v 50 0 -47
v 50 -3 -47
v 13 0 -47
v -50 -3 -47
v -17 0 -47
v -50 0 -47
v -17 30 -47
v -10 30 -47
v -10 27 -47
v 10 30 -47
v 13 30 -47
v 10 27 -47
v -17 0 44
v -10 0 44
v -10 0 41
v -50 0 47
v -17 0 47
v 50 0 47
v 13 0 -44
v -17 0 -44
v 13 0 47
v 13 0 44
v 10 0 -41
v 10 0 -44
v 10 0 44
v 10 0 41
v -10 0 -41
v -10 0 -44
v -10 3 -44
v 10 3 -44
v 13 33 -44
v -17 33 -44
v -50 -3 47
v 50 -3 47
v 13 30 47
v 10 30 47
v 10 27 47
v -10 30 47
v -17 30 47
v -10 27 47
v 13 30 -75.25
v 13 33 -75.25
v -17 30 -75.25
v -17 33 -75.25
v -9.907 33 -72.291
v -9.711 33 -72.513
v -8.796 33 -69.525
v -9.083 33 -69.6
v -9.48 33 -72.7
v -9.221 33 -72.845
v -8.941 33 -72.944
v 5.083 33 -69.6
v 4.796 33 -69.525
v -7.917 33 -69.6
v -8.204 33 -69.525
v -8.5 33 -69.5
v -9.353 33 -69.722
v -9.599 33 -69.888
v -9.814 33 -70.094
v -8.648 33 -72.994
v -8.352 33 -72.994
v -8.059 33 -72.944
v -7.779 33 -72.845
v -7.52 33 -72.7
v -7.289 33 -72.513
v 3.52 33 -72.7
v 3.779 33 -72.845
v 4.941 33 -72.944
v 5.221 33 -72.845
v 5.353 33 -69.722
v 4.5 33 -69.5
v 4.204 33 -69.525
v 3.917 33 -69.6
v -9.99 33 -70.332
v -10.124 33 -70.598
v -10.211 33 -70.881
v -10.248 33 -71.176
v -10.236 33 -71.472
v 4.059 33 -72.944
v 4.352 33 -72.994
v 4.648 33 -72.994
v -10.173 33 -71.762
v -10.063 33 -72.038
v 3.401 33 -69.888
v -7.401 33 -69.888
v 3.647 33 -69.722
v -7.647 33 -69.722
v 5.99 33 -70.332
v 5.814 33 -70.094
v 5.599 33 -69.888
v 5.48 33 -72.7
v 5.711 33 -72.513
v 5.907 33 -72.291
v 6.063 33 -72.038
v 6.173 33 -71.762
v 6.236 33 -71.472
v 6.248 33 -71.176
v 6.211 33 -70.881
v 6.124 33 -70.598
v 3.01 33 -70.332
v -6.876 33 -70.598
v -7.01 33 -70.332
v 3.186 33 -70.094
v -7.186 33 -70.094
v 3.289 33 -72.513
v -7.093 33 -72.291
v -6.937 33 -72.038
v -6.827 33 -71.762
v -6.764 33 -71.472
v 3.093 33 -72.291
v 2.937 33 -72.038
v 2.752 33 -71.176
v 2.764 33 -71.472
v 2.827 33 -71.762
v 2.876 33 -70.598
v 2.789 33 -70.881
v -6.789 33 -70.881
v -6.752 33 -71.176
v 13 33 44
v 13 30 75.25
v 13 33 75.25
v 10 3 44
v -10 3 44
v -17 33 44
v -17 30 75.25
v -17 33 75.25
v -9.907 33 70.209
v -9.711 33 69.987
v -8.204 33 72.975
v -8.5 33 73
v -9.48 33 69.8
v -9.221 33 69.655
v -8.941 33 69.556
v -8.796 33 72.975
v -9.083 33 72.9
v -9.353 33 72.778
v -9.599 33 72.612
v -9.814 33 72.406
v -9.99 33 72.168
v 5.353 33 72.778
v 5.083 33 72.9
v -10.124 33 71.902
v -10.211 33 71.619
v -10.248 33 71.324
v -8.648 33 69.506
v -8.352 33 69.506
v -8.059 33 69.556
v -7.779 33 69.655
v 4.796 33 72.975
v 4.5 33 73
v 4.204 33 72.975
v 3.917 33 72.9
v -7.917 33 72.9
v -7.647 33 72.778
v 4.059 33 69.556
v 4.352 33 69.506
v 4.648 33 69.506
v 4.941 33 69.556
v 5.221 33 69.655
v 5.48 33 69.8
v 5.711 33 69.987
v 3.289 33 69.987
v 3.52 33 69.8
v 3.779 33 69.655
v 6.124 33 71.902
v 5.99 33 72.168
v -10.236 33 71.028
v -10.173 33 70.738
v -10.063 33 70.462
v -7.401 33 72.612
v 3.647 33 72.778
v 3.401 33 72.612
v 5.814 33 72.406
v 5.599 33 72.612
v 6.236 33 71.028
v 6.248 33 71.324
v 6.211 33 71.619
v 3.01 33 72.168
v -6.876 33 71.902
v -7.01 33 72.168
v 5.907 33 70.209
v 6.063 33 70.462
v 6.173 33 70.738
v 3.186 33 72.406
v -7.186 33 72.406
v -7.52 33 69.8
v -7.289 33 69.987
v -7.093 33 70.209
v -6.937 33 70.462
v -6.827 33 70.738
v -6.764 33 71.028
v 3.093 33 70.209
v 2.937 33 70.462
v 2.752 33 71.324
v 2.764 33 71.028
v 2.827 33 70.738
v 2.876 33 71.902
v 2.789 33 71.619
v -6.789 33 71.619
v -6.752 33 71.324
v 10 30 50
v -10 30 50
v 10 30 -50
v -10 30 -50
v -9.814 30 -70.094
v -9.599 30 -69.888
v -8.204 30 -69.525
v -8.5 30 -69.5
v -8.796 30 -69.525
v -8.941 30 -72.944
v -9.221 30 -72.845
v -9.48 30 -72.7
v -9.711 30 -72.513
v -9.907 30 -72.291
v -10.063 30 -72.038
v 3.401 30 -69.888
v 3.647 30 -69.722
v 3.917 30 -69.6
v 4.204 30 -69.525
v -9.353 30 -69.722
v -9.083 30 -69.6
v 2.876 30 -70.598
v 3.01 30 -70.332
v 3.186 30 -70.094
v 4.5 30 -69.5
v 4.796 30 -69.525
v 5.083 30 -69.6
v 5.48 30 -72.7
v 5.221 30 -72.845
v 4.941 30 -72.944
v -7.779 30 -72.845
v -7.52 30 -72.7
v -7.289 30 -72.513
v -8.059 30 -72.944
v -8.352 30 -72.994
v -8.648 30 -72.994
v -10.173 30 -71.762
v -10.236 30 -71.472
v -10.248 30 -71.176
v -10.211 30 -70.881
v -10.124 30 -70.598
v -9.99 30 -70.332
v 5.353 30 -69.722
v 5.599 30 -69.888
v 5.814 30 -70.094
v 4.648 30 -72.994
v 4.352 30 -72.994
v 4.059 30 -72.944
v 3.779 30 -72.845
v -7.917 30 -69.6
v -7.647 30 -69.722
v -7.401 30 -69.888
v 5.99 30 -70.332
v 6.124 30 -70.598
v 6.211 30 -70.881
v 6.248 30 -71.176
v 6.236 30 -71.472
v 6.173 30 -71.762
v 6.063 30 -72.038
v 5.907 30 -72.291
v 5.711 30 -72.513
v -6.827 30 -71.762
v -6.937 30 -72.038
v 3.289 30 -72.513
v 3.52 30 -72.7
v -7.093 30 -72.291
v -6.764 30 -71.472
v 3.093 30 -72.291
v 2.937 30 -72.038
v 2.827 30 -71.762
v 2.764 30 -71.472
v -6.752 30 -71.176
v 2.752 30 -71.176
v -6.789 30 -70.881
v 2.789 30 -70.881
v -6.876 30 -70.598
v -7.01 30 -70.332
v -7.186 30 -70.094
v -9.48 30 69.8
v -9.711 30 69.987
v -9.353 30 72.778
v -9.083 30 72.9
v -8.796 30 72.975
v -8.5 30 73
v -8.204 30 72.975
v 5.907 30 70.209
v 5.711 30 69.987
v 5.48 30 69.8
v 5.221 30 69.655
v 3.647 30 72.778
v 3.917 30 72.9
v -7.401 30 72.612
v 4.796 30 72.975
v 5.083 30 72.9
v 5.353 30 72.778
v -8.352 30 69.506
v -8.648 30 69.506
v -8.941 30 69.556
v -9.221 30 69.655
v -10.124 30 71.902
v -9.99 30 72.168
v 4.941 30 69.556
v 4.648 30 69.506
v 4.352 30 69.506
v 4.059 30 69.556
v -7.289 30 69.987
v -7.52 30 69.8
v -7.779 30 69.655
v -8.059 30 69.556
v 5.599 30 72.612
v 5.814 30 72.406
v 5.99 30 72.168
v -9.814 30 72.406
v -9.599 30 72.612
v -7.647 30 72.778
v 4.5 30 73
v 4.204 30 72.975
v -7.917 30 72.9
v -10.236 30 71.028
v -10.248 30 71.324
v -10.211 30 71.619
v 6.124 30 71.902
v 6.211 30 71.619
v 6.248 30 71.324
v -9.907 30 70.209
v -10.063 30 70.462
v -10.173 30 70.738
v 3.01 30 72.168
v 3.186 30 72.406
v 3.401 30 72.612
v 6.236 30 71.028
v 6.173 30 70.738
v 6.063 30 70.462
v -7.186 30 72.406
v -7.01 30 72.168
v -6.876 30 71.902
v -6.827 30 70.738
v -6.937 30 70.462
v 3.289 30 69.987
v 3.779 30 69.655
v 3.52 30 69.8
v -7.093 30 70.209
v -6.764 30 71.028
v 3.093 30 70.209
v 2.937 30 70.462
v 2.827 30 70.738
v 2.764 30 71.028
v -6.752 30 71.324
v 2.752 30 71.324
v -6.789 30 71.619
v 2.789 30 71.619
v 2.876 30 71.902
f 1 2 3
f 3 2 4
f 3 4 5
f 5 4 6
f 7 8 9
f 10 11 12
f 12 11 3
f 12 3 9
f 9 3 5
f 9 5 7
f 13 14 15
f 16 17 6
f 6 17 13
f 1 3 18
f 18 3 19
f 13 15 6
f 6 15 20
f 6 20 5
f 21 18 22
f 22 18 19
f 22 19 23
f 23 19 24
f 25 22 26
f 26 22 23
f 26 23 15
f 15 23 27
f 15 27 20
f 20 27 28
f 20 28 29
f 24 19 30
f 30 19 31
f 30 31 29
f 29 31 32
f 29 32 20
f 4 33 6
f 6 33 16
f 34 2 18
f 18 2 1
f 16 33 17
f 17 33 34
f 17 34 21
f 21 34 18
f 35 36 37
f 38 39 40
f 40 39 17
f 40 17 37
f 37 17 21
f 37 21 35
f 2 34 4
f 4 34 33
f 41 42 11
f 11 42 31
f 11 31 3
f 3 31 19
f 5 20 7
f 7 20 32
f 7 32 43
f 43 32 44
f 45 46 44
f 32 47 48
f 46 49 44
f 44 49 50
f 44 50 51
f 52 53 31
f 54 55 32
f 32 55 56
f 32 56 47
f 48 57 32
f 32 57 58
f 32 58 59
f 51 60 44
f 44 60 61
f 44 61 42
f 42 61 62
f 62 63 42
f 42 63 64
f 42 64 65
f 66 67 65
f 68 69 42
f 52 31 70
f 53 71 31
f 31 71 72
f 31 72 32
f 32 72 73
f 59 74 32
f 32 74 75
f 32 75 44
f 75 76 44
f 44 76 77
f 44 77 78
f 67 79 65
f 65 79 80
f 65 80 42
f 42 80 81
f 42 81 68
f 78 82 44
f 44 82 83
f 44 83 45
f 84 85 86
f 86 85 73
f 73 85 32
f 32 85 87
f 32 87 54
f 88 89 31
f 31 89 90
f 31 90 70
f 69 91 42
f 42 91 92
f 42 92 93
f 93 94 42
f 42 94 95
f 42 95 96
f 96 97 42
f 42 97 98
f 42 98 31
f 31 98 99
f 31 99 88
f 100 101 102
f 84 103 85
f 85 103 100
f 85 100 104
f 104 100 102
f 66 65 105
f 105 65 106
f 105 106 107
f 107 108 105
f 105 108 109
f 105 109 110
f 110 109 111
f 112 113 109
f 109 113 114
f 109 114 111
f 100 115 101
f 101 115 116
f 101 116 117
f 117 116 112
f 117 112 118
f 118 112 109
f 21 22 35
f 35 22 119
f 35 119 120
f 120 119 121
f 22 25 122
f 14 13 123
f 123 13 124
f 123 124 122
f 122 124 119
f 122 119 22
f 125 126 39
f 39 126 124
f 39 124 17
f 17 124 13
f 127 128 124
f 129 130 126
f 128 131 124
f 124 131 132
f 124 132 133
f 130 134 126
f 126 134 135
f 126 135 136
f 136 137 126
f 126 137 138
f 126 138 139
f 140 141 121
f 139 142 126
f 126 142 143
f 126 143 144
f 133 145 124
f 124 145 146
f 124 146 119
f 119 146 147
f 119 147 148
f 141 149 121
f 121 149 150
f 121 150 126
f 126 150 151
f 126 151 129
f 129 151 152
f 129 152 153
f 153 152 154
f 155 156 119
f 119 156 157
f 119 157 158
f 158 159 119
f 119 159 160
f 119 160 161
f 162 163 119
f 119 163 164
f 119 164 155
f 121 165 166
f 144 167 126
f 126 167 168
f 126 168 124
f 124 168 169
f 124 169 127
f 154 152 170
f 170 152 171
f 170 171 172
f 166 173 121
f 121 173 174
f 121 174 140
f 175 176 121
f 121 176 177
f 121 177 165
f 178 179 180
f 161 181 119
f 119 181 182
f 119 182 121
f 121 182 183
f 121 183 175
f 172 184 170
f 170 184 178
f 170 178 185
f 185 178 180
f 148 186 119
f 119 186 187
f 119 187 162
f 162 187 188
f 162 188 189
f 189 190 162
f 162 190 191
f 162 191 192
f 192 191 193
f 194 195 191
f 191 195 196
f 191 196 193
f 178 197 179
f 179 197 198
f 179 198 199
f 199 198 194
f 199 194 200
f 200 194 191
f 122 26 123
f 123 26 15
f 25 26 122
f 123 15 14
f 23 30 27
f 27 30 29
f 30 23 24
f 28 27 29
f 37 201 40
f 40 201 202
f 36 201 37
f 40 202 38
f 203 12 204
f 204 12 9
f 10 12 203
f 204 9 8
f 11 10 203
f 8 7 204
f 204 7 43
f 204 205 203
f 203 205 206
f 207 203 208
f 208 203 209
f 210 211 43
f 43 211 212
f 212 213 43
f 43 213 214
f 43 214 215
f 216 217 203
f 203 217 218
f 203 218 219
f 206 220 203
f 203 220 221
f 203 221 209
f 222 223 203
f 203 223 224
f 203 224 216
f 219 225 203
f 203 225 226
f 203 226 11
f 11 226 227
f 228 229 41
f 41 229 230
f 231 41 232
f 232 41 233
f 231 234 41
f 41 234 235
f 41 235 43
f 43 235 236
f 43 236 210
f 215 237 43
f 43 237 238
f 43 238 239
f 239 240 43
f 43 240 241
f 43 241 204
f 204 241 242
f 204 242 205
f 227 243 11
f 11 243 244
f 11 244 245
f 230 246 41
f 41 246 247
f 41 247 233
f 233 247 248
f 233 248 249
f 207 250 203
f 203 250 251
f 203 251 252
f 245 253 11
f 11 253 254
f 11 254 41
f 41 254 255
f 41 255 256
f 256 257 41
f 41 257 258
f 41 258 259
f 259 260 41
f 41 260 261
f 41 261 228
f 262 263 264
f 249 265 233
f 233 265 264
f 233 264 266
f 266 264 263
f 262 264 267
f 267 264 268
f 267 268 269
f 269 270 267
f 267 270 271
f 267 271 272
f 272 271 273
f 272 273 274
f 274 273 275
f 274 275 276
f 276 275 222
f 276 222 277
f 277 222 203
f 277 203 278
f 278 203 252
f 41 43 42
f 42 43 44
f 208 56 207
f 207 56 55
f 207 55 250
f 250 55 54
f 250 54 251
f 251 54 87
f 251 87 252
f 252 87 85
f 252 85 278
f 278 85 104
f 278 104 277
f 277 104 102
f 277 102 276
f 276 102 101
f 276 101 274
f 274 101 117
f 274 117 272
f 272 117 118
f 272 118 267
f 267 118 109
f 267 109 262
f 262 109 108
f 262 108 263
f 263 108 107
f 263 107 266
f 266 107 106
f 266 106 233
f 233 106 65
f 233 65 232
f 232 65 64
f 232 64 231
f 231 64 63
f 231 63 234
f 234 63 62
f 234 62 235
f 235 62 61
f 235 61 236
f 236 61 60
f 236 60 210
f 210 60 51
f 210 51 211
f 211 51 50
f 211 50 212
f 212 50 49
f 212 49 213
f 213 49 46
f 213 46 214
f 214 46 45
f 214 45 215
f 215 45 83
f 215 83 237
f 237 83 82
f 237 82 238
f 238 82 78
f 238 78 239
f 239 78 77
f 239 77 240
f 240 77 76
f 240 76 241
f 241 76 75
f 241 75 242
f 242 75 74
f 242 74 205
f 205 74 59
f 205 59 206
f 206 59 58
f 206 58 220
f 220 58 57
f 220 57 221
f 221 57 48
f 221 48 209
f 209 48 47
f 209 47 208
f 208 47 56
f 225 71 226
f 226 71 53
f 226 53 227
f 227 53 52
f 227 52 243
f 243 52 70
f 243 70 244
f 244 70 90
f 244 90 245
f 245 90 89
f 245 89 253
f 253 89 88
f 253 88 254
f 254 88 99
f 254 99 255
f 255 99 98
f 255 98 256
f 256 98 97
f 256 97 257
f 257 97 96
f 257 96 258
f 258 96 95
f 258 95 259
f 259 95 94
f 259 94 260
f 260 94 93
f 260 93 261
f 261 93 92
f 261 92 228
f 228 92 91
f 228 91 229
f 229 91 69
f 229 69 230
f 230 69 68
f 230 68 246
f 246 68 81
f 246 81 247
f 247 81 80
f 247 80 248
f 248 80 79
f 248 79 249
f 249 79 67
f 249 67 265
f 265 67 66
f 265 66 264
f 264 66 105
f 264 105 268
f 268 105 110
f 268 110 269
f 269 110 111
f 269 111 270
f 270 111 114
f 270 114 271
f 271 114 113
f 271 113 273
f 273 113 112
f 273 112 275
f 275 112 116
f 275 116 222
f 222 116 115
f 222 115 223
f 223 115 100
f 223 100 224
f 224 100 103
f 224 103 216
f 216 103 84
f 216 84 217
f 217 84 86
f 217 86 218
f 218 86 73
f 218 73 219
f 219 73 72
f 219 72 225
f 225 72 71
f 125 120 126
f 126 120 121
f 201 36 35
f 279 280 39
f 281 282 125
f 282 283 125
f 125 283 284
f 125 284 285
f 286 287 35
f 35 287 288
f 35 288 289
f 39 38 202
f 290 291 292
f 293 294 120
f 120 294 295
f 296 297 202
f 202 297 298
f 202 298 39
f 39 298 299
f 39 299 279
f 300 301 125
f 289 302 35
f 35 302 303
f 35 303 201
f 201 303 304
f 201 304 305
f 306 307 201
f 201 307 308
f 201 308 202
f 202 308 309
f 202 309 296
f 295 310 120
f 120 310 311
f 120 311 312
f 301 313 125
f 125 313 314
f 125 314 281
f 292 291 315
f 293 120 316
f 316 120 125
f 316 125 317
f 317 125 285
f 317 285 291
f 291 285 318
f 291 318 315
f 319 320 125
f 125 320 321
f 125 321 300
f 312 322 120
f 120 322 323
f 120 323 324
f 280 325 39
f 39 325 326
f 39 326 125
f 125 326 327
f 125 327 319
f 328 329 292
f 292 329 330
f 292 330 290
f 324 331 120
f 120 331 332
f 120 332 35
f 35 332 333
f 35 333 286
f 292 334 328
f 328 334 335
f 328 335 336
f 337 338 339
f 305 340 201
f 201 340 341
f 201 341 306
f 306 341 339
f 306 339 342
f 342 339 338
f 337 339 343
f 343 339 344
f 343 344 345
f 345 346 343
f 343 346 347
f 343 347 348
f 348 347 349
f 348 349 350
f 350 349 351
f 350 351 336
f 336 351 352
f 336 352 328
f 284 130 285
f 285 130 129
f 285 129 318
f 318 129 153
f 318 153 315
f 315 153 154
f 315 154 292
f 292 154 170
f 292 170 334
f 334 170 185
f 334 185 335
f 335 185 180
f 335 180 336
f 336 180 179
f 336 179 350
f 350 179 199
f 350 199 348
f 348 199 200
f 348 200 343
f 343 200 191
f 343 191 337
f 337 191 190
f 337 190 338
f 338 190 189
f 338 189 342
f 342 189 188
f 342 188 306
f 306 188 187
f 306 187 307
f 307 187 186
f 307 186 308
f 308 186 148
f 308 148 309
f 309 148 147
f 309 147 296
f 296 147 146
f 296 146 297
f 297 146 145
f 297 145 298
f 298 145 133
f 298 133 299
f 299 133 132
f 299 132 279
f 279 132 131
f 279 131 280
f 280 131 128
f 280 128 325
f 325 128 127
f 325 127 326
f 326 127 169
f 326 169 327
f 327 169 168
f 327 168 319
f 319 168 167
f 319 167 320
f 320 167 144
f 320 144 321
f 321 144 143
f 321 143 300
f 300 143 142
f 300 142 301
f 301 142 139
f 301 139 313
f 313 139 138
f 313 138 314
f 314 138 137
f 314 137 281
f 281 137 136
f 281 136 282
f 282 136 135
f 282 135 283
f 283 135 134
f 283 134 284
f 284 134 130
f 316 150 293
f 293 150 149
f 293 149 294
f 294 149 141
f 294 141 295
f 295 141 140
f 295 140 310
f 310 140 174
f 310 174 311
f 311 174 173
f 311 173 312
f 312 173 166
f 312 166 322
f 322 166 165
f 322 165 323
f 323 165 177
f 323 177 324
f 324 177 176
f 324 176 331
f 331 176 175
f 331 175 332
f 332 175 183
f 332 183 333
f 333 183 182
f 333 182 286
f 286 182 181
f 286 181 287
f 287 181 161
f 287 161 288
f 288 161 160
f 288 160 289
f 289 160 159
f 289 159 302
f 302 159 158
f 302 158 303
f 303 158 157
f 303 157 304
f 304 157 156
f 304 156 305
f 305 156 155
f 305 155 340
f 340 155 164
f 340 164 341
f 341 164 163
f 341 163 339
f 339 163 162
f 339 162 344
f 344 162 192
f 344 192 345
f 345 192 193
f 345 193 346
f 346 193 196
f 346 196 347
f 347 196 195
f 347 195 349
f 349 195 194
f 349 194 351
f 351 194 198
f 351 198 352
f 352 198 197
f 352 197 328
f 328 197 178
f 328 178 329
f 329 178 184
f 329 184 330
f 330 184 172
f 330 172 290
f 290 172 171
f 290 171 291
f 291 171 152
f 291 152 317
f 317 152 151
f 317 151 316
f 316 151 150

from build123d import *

# Parameters (mm, degrees)
SKETCH1_W           = 100
SKETCH1_H           = 94
BOSS_EXTRUDE1_DEPTH = 3
SKETCH2_W           = 30
SKETCH2_H           = 3
BOSS_EXTRUDE2_DEPTH = 33
BOSS_EXTRUDE3_DEPTH = 10
SKETCH4_W           = 30
SKETCH4_H           = 28.25
SKETCH4_R           = 1.75
BOSS_EXTRUDE4_DEPTH = 3


with BuildPart() as part:
    # Sketch1 → Boss-Extrude1 (new body)
    with BuildSketch(Plane(origin=(0, 0, 0), x_dir=(1, 0, 0), z_dir=(0, 1, 0))):
        Rectangle(SKETCH1_W, SKETCH1_H)
    extrude(amount=-BOSS_EXTRUDE1_DEPTH)

    # Sketch2 → Boss-Extrude2 (add)
    with BuildSketch(Plane(origin=(0, 0, 0), x_dir=(1, 0, 0), z_dir=(0, 1, 0))):
        with Locations((-2, 45.5)):
            Rectangle(SKETCH2_W, SKETCH2_H)
        with Locations((-2, -45.5)):
            Rectangle(SKETCH2_W, SKETCH2_H)
    extrude(amount=BOSS_EXTRUDE2_DEPTH)

    # Sketch3 → Boss-Extrude3 (add, symmetric)
    with BuildSketch(Plane(origin=(0, 0, 0), x_dir=(0, 0, -1), z_dir=(1, 0, 0))):
        Polygon((-44, 3), (-41, 0), (-44, 0), align=None)
        Polygon((44, 3), (41, 0), (44, 0), align=None)
        Polygon((-47, 30), (-50, 30), (-47, 27), align=None)
        Polygon((47, 30), (47, 27), (50, 30), align=None)
    extrude(amount=BOSS_EXTRUDE3_DEPTH, both=True)

    # Sketch4 → Boss-Extrude4 (add)
    # profile 1 of 2: a face of its own
    with BuildSketch(Plane(origin=(0, 33, 0), x_dir=(1, 0, 0), z_dir=(0, 1, 0))):
        with Locations((-2, 61.125)):
            Rectangle(SKETCH4_W, SKETCH4_H)
        with Locations(Location((-8.5, 71.25, 0), (0, 0, 270))):
            Circle(SKETCH4_R, mode=Mode.SUBTRACT)
        with Locations(Location((4.5, 71.25, 0), (0, 0, 270))):
            Circle(SKETCH4_R, mode=Mode.SUBTRACT)
    # profile 2 of 2: a face of its own
    with BuildSketch(Plane(origin=(0, 33, 0), x_dir=(1, 0, 0), z_dir=(0, 1, 0))):
        with Locations((-2, -61.125)):
            Rectangle(SKETCH4_W, SKETCH4_H)
        with Locations(Location((-8.5, -71.25, 0), (0, 0, 270))):
            Circle(SKETCH4_R, mode=Mode.SUBTRACT)
        with Locations(Location((4.5, -71.25, 0), (0, 0, 270))):
            Circle(SKETCH4_R, mode=Mode.SUBTRACT)
    extrude(amount=-BOSS_EXTRUDE4_DEPTH)


solid = part.part
